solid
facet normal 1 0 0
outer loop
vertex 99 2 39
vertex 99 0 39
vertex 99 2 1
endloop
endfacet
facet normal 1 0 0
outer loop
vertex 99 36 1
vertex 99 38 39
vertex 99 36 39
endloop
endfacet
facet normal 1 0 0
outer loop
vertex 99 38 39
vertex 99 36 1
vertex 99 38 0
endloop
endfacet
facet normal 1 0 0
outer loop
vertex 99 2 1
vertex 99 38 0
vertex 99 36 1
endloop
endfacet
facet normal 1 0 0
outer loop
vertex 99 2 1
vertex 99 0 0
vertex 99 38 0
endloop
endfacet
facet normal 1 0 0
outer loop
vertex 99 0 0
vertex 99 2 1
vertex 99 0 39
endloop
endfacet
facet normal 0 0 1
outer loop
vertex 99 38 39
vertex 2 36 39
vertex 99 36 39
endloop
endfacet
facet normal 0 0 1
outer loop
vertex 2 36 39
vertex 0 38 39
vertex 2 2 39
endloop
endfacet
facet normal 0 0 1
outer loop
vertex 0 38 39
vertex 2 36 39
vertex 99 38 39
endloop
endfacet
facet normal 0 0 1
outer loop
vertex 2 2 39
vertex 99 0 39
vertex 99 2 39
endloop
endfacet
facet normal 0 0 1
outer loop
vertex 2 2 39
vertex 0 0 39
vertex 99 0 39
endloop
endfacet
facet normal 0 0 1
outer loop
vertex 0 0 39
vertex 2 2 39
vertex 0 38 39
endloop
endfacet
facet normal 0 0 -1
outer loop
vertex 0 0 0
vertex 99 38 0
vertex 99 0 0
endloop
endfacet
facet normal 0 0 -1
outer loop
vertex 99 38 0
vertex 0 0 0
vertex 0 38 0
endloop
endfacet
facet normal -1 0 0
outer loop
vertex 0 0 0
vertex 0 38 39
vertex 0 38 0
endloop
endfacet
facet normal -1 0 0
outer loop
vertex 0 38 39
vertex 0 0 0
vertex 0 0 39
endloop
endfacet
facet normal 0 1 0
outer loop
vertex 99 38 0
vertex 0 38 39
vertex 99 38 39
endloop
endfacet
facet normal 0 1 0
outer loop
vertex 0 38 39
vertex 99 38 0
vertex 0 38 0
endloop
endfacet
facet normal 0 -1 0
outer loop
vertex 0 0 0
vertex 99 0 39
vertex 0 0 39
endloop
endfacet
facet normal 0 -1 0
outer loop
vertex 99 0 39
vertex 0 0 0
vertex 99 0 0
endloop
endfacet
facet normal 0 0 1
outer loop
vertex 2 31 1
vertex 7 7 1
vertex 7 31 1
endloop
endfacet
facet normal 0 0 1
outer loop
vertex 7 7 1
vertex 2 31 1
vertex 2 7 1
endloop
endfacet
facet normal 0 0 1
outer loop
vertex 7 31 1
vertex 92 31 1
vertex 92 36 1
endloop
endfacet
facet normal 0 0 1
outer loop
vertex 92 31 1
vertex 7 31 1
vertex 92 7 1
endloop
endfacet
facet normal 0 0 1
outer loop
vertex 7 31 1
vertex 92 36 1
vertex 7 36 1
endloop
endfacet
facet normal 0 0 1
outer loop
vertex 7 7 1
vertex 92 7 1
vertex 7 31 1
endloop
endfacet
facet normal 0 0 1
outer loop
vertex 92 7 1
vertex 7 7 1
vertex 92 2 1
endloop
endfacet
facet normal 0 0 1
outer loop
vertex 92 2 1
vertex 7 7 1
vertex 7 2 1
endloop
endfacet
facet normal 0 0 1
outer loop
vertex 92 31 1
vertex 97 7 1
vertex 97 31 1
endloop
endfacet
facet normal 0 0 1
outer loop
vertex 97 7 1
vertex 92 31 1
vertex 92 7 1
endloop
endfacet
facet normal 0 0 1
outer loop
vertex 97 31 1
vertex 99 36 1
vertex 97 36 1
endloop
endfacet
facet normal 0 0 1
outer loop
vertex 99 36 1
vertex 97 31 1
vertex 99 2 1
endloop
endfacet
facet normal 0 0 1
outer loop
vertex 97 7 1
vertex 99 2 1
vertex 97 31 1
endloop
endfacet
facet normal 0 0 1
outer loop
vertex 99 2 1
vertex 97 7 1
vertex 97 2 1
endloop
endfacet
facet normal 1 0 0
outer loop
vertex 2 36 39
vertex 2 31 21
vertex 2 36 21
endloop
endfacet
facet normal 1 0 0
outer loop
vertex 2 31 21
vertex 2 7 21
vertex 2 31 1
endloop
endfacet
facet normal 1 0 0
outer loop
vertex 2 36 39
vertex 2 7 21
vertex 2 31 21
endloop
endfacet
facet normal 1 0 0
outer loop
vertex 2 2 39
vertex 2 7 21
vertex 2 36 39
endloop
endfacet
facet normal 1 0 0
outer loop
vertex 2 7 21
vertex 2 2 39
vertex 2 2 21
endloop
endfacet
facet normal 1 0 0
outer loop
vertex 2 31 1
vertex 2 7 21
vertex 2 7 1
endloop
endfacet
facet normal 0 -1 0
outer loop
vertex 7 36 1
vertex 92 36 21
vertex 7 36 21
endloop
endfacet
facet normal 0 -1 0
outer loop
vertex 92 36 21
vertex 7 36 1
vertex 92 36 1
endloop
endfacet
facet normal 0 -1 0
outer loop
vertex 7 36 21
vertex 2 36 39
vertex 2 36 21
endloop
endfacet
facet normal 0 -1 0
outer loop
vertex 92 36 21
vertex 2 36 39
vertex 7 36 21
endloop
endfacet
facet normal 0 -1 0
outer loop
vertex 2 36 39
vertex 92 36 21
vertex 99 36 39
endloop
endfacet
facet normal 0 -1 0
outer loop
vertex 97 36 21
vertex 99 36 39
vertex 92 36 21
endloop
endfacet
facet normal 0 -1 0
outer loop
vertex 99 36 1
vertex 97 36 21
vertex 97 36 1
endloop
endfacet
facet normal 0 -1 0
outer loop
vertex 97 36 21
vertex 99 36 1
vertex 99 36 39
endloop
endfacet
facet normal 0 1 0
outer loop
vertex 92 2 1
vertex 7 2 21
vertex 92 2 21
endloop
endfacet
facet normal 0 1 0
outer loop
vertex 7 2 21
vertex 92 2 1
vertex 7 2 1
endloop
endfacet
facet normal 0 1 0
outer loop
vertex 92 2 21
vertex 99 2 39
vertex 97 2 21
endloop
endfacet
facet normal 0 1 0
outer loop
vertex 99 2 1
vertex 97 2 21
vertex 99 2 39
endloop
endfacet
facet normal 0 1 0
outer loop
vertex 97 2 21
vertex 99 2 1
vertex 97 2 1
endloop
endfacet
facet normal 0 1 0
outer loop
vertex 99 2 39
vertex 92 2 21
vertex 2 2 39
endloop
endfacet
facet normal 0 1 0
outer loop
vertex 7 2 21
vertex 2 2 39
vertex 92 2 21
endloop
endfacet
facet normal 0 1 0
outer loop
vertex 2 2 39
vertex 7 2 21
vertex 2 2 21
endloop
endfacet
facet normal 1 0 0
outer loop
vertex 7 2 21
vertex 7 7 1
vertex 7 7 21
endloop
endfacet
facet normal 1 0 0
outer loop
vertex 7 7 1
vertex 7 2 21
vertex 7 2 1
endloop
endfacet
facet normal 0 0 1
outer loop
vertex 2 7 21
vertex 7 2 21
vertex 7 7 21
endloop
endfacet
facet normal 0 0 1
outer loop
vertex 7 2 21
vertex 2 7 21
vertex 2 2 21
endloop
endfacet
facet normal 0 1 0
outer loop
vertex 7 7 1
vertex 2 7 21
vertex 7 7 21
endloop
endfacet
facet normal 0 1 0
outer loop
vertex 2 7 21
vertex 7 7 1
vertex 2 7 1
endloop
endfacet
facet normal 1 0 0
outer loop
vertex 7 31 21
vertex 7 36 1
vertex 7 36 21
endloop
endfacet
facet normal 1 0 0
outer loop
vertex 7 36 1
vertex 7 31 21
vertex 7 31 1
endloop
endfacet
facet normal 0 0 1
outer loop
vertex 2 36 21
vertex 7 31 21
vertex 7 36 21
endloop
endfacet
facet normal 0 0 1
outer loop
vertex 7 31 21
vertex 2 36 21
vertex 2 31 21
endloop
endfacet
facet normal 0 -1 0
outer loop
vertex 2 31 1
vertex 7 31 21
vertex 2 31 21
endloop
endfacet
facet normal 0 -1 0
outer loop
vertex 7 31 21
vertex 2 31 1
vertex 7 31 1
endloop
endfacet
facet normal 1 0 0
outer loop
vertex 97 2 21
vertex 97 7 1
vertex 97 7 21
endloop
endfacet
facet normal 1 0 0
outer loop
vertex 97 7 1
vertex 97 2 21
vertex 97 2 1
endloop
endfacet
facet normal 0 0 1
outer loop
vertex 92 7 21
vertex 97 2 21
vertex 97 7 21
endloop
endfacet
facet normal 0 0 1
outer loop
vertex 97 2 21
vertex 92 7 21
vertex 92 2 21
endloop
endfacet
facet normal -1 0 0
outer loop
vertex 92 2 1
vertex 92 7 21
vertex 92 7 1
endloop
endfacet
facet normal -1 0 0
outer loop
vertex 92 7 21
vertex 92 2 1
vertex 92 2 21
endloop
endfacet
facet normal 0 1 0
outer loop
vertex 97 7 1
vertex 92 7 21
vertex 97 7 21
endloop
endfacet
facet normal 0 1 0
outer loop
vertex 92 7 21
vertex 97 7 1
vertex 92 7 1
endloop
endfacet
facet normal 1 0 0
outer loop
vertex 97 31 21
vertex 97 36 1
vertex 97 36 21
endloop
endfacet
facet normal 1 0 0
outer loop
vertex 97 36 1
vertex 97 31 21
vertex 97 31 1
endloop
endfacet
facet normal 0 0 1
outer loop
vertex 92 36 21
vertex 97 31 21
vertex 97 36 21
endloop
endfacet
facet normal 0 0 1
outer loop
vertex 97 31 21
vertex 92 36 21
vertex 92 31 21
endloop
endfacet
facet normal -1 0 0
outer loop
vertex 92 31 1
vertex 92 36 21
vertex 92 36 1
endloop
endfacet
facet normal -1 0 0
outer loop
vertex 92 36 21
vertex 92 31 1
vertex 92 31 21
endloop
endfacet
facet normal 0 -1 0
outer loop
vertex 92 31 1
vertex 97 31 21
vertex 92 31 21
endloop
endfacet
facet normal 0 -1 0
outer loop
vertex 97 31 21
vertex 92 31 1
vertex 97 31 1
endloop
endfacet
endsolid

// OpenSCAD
// Box for Electronic Goldmine geiger counter

xx=95;
zz=18;
yy=34;
ww=2;
ff=1;
batzz=20;
batyy=26;

postxx=5;
postyy=5;
postzz=batzz;


module box() {
  difference() {
    cube([xx+2*ww,yy+2*ww,zz+batzz+ff]);
    translate([ww,ww,ff]) cube([xx+ww,yy,zz+batzz]);
  }
  #translate([ww,ww,ff]) cube([postxx,postyy,postzz]);
  #translate([ww,yy-postyy+ww,ff]) cube([postxx,postyy,postzz]);
  #translate([xx-postxx+ww,ww,ff]) cube([postxx,postyy,postzz]);
  #translate([xx-postxx+ww,yy-postyy+ww,ff]) cube([postxx,postyy,postzz]);
}

module lid() {
}


box();
